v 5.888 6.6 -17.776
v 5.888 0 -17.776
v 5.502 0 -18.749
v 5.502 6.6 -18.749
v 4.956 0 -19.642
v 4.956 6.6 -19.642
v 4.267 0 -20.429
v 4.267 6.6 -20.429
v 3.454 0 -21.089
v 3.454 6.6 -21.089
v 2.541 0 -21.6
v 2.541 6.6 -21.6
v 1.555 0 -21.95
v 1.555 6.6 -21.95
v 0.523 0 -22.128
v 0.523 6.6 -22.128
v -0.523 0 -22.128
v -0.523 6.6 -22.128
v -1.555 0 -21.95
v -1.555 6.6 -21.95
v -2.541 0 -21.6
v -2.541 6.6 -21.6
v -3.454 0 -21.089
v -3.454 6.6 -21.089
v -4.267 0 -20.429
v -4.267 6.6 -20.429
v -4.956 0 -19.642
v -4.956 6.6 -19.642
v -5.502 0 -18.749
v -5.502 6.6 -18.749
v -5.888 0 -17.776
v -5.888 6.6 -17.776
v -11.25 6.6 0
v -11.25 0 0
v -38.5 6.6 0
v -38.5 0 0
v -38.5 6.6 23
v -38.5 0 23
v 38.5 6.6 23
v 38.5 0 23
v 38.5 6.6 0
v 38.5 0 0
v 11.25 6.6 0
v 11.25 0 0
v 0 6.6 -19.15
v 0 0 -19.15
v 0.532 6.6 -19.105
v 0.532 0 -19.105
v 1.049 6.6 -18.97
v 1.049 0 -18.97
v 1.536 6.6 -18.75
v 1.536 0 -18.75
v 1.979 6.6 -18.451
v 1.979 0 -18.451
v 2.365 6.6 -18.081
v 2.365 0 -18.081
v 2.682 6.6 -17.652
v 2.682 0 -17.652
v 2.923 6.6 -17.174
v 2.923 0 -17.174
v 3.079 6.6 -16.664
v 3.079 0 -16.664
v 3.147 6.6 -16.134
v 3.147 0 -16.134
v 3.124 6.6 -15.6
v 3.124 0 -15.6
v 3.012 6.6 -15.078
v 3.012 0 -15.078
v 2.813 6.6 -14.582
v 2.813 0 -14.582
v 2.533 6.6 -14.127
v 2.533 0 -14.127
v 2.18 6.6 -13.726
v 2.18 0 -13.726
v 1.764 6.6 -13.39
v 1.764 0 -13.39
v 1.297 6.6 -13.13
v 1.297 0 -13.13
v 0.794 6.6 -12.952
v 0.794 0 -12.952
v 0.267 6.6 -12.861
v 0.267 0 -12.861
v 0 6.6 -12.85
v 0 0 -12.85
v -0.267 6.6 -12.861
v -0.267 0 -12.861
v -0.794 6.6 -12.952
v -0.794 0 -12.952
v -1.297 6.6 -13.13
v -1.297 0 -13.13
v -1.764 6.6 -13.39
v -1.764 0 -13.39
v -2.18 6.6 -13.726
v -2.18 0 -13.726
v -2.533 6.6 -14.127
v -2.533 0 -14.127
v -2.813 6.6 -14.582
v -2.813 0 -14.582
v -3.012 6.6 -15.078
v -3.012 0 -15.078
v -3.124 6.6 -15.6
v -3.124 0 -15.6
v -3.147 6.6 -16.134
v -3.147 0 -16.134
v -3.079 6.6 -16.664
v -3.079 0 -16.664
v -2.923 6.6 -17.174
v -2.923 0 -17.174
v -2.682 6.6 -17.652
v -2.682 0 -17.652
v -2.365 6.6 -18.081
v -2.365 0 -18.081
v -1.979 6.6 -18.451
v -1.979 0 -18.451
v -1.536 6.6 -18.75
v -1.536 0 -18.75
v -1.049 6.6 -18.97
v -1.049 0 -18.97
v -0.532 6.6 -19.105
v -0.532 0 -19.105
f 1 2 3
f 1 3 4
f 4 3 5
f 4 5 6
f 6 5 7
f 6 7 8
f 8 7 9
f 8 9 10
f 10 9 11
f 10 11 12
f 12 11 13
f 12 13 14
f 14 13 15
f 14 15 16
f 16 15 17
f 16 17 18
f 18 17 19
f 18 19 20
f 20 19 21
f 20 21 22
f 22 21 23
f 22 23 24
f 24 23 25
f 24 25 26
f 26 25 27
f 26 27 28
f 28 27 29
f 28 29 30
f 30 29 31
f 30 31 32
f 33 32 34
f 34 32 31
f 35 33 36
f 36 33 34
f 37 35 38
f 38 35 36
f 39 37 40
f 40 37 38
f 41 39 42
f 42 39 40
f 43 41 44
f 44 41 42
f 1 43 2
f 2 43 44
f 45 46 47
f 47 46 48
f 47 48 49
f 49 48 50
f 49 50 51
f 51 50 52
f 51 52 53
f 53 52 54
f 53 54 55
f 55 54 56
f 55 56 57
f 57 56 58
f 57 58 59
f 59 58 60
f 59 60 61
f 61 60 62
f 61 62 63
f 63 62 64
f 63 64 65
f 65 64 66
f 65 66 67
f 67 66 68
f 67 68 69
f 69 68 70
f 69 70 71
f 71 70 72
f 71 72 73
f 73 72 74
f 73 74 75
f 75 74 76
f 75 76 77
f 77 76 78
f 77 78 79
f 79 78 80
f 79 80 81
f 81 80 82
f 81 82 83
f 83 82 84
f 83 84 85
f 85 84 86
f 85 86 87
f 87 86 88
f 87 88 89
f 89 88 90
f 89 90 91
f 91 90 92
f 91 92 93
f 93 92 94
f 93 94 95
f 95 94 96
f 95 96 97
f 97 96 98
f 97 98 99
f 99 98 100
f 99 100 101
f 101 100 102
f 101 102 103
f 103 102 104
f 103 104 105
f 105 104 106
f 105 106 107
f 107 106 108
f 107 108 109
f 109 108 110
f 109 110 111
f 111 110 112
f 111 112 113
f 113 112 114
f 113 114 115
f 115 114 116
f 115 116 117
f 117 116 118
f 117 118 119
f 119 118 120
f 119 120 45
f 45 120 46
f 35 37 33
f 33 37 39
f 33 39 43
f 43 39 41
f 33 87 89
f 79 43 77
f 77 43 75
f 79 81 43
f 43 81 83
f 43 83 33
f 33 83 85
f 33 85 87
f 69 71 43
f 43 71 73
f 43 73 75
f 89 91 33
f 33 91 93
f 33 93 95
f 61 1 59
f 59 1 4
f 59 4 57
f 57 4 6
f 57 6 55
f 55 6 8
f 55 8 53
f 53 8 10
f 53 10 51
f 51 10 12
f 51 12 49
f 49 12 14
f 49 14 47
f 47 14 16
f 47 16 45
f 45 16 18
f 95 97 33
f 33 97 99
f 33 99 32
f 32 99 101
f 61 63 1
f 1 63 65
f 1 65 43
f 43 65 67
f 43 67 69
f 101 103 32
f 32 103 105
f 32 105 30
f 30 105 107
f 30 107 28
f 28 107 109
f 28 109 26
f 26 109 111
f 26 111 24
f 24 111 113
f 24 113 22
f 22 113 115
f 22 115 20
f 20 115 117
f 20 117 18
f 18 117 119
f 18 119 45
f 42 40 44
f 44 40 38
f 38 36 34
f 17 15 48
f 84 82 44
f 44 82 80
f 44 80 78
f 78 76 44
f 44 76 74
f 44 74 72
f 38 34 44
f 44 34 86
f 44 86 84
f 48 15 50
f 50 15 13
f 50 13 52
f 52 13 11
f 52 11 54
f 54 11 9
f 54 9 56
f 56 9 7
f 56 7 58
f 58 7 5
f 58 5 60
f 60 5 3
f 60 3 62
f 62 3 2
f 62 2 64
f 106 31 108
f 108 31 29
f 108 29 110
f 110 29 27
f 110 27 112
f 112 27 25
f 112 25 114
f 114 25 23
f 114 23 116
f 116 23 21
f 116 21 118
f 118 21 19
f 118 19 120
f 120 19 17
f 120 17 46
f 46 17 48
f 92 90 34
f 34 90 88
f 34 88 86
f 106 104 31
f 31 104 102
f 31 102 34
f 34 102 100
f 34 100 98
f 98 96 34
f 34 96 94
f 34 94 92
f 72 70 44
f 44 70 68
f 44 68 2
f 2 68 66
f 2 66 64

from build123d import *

# Parameters (mm, degrees)
SKETCH_1_R      = 3.15
SKETCH_1_W      = 77
SKETCH_1_H      = 23
EXTRUDE_1_DEPTH = 6.6


with BuildPart() as part:
    # 草图1 → 凸台-拉伸1 (new body)
    # profile 1 of 2: a face of its own
    with BuildSketch(Plane(origin=(0, 0, 0), x_dir=(1, 0, 0), z_dir=(0, 1, 0))):
        with BuildLine():
            Line((-5.888001359, 17.775933557), (-11.249562098, 0))
            Line((-11.249562098, 0), (11.249562098, 0))
            Line((11.249562098, 0), (5.888001359, 17.775933557))
            ThreePointArc((5.888001359, 17.775933557), (0, 22.15), (-5.888001359, 17.775933557))
        make_face()
        with Locations(Location((0, 16, 0), (0, 0, 270))):
            Circle(SKETCH_1_R, mode=Mode.SUBTRACT)
    # profile 2 of 2: a face of its own
    with BuildSketch(Plane(origin=(0, 0, 0), x_dir=(1, 0, 0), z_dir=(0, 1, 0))):
        with Locations((0, -11.5)):
            Rectangle(SKETCH_1_W, SKETCH_1_H)
    extrude(amount=EXTRUDE_1_DEPTH)


solid = part.part
